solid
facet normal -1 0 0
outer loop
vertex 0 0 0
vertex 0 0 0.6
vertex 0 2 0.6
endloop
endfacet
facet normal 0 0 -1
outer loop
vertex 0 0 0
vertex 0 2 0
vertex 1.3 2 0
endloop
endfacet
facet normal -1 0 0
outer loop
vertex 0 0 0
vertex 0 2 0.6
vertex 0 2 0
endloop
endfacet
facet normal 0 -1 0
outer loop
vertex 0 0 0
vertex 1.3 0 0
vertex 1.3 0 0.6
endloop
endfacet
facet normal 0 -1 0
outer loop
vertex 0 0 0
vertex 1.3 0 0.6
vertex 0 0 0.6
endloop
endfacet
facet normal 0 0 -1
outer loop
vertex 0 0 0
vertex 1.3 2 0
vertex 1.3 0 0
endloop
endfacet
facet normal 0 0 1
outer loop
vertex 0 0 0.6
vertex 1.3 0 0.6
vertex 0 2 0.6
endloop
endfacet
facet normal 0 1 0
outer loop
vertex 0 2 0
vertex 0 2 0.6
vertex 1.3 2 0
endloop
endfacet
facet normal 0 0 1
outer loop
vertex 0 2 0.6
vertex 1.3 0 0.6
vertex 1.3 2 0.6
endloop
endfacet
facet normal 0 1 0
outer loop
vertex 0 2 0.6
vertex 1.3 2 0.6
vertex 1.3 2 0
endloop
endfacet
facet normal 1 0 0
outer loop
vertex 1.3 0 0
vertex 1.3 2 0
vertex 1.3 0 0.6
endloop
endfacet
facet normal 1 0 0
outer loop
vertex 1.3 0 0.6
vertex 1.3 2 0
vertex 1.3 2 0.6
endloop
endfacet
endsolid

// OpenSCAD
/* Warning, this is a very basic generator with a lot of approximation 
input data : [UDFN, HXA, 1.3x2.0x0.6mm, 6, , D, C04-01245D]
generated by com.zoubworld.electronics.cad.model3d.Basic
Date : Sun Feb 15 10:50:49 CET 2026
*/

//body
color("black")
translate([0,0,0])
cube([1.3,2.0,0.6], center=false);
